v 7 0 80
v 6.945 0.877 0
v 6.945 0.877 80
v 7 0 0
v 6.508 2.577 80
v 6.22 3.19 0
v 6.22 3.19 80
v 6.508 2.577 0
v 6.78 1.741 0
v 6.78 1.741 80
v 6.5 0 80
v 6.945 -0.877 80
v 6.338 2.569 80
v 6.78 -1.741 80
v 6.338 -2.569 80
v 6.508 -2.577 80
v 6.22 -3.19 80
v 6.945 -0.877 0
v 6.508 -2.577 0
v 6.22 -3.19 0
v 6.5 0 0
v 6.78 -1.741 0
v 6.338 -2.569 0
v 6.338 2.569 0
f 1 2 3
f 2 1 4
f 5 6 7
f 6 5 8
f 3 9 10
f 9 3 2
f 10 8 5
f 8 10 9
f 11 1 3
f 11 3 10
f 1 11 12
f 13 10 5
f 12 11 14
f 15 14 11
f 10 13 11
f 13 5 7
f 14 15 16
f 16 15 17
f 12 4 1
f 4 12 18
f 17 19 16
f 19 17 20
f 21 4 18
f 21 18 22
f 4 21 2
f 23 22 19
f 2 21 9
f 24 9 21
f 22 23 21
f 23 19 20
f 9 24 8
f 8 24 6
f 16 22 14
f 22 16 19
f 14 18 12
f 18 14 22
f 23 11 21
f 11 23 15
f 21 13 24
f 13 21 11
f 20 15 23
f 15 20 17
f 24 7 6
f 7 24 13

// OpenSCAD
$fn = 50;


difference() {
	union() {
		cylinder(h = 80, r = 7.0000000000);
		translate(v = [-17.0000000000, 0, 0]) {
			cylinder(h = 80, r = 7.0000000000);
		}
	}
	union() {
		cylinder(h = 80, r = 3.2500000000);
		cylinder(h = 80, r = 1.8000000000);
		cylinder(h = 80, r = 1.8000000000);
		cylinder(h = 80, r = 1.8000000000);
		translate(v = [-21.5000000000, 0, 0]) {
			hull() {
				translate(v = [-3.7500000000, 0.0000000000, 0]) {
					cylinder(h = 80, r = 10.5000000000);
				}
				translate(v = [3.7500000000, 0.0000000000, 0]) {
					cylinder(h = 80, r = 10.5000000000);
				}
				translate(v = [-3.7500000000, -0.0000000000, 0]) {
					cylinder(h = 80, r = 10.5000000000);
				}
				translate(v = [3.7500000000, -0.0000000000, 0]) {
					cylinder(h = 80, r = 10.5000000000);
				}
			}
		}
		translate(v = [-14.0000000000, 0, 0.0000000000]) {
			cylinder(h = 80, r = 20.5000000000);
		}
	}
}
